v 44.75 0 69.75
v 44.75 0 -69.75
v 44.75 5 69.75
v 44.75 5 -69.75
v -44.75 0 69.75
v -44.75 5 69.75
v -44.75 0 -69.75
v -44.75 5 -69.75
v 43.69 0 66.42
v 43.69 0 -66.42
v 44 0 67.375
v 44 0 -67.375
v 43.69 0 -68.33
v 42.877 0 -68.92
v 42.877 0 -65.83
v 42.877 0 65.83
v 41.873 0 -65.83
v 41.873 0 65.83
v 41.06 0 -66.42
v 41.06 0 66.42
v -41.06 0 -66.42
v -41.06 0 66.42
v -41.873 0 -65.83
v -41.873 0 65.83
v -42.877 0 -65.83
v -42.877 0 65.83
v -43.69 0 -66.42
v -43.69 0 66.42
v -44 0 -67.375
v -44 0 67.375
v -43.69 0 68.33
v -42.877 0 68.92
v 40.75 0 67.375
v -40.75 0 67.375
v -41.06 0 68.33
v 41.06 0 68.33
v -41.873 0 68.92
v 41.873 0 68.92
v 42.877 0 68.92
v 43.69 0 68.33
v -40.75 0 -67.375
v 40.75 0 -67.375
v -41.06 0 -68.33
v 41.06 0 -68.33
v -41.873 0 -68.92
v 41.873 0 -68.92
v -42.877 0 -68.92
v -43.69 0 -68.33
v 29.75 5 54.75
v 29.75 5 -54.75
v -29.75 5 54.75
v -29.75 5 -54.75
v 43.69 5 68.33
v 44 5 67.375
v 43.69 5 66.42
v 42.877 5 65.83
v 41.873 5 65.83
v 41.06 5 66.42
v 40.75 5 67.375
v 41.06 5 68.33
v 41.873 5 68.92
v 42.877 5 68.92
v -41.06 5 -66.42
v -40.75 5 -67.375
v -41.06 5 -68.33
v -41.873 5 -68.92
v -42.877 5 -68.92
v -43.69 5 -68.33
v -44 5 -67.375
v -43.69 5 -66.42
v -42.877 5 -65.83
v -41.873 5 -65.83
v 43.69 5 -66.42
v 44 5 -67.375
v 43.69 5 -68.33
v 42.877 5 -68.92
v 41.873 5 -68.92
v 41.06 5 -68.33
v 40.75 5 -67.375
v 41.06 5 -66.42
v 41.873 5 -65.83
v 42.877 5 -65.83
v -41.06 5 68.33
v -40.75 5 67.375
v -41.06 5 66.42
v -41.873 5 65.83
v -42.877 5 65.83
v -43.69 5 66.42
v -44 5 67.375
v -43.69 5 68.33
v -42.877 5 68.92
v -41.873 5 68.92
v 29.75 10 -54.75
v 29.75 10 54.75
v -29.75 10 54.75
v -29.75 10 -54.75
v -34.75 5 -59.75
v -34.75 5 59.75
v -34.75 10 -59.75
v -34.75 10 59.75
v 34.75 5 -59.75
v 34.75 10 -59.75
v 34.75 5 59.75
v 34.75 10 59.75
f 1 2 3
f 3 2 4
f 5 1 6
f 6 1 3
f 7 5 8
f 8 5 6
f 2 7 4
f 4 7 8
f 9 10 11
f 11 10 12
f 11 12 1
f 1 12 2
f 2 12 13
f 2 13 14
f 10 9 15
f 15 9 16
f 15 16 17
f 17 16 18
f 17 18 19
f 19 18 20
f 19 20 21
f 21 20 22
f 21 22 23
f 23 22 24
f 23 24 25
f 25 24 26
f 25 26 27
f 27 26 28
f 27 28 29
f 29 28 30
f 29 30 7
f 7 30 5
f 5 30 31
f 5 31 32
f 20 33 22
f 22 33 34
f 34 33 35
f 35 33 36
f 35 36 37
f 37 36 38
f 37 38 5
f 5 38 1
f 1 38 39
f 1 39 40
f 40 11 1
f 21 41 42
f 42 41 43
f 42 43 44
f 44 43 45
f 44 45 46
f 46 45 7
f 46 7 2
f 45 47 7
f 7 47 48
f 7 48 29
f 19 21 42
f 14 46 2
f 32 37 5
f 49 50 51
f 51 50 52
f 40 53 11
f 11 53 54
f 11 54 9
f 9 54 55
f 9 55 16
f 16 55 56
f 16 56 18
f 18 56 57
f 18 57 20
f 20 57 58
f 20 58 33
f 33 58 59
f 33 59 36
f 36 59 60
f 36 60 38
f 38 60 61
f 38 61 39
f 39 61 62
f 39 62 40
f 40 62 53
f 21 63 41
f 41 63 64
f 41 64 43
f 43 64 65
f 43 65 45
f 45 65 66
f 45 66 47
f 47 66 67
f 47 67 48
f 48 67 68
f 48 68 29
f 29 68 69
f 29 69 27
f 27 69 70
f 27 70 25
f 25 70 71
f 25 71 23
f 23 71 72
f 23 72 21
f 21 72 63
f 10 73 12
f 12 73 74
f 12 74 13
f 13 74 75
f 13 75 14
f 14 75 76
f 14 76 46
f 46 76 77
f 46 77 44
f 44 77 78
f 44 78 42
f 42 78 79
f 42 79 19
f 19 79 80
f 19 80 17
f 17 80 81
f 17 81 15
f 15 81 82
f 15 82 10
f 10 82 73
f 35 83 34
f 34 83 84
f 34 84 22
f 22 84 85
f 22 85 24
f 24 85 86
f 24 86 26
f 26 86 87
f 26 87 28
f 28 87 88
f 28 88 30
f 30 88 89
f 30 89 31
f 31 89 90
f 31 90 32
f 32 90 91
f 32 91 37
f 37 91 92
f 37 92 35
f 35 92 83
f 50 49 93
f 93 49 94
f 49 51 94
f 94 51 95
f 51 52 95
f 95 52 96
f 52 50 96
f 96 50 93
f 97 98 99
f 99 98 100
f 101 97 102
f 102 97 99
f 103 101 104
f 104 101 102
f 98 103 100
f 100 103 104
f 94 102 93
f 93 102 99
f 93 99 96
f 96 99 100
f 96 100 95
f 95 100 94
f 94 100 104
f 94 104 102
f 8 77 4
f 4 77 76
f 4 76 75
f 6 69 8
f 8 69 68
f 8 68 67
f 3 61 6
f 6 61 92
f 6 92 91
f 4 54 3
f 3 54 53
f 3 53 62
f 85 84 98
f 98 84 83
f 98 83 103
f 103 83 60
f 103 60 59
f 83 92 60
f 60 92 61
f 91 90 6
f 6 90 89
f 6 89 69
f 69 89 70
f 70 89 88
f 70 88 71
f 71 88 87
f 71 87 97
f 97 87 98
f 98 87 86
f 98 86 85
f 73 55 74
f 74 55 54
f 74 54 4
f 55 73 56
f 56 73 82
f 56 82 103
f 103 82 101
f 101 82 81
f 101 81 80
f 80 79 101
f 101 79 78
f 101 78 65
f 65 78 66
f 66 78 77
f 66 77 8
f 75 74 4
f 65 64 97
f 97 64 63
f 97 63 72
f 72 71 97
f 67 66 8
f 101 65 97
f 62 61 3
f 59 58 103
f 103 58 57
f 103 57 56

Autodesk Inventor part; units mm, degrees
ref_plane "YZ Plane" through (0, 0, 0) normal (1, 0, 0) x (0, 1, 0)
ref_plane "XZ Plane" through (0, 0, 0) normal (0, 1, 0) x (-1, 0, 0)
ref_plane "XY Plane" through (0, 0, 0) normal (0, 0, 1) x (1, 0, 0)
sketch "Sketch1" plane through (0, 0, 0) normal (0, 1, 0) x (-1, 0, 0)
  line L0 (62.65, 0) -> (-62.65, 0) projected
  line L1 (0, -97.65) -> (0, 97.65) projected
  line L2 (44.75, -69.75) -> (-44.75, -69.75)
  line L3 (-44.75, -69.75) -> (-44.75, 69.75)
  line L4 (-44.75, 69.75) -> (44.75, 69.75)
  line L5 (44.75, 69.75) -> (44.75, -69.75)
  point P0 (0, 0)
  dimension "d0" = 89.5
  dimension "d1" = 139.5
  dimension "d2" = 69.75
  dimension "d3" = 44.75
extrude "Extrusion1" add sketch "Sketch1" along normal blind 5
sketch "Sketch2" plane through (0, 5, 0) normal (0, 1, 0) x (1, 0, 0)
  circle A0 centre (-42.375, 67.375) radius 1.625
  circle A1 centre (42.375, 67.375) radius 1.625
  circle A2 centre (42.375, -67.375) radius 1.625
  circle A3 centre (-42.375, -67.375) radius 1.625
  line L0 (44.75, -69.75) -> (44.75, 69.75) projected
  line L1 (44.75, 69.75) -> (-44.75, 69.75) projected
  line L2 (-44.75, 69.75) -> (-44.75, -69.75) projected
  line L3 (-44.75, -69.75) -> (44.75, -69.75) projected
  dimension "d6" = 3.25
  dimension "d9" = 3.25
  dimension "d12" = 3.25
  dimension "d15" = 3.25
  dimension "d19" = 2.375
  dimension "d20" = 2.375
  dimension "d21" = 2.375
  dimension "d22" = 2.375
  dimension "d23" = 2.375
  dimension "d24" = 2.375
  dimension "d25" = 2.375
  dimension "d26" = 2.375
extrude "Extrusion2" cut sketch "Sketch2" against normal blind 5 contours A0 | A1 | A2 | A3
sketch "Sketch3" plane through (0, 5, 0) normal (0, 1, 0) x (1, 0, 0)
  line L0 (-34.75, -59.75) -> (34.75, -59.75)
  line L1 (34.75, -59.75) -> (34.75, 59.75)
  line L2 (34.75, 59.75) -> (-34.75, 59.75)
  line L3 (-34.75, 59.75) -> (-34.75, -59.75)
  circle A0 centre (42.375, -67.375) radius 1.625 projected
  circle A1 centre (-42.375, 67.375) radius 1.625 projected
  circle A2 centre (42.375, 67.375) radius 1.625 projected
  circle A3 centre (-42.375, -67.375) radius 1.625 projected
  line L4 (44.75, 69.75) -> (-44.75, 69.75) projected
  line L5 (-44.75, 69.75) -> (-44.75, -69.75) projected
  line L6 (-44.75, -69.75) -> (44.75, -69.75) projected
  line L7 (44.75, -69.75) -> (44.75, 69.75) projected
  line L8 (-29.75, 54.75) -> (29.75, 54.75)
  line L9 (29.75, 54.75) -> (29.75, -54.75)
  line L10 (29.75, -54.75) -> (-29.75, -54.75)
  line L11 (-29.75, -54.75) -> (-29.75, 54.75)
  point P0 (0, 0)
  dimension "d29" = 10
  dimension "d30" = 10
  dimension "d31" = 10
  dimension "d32" = 10
  dimension "d33" = 5
  dimension "d34" = 5
  dimension "d35" = 5
  dimension "d36" = 5
extrude "Extrusion3" add sketch "Sketch3" along normal blind 5 contours L3 L2 L1 L0
properties part number "mien_top"
